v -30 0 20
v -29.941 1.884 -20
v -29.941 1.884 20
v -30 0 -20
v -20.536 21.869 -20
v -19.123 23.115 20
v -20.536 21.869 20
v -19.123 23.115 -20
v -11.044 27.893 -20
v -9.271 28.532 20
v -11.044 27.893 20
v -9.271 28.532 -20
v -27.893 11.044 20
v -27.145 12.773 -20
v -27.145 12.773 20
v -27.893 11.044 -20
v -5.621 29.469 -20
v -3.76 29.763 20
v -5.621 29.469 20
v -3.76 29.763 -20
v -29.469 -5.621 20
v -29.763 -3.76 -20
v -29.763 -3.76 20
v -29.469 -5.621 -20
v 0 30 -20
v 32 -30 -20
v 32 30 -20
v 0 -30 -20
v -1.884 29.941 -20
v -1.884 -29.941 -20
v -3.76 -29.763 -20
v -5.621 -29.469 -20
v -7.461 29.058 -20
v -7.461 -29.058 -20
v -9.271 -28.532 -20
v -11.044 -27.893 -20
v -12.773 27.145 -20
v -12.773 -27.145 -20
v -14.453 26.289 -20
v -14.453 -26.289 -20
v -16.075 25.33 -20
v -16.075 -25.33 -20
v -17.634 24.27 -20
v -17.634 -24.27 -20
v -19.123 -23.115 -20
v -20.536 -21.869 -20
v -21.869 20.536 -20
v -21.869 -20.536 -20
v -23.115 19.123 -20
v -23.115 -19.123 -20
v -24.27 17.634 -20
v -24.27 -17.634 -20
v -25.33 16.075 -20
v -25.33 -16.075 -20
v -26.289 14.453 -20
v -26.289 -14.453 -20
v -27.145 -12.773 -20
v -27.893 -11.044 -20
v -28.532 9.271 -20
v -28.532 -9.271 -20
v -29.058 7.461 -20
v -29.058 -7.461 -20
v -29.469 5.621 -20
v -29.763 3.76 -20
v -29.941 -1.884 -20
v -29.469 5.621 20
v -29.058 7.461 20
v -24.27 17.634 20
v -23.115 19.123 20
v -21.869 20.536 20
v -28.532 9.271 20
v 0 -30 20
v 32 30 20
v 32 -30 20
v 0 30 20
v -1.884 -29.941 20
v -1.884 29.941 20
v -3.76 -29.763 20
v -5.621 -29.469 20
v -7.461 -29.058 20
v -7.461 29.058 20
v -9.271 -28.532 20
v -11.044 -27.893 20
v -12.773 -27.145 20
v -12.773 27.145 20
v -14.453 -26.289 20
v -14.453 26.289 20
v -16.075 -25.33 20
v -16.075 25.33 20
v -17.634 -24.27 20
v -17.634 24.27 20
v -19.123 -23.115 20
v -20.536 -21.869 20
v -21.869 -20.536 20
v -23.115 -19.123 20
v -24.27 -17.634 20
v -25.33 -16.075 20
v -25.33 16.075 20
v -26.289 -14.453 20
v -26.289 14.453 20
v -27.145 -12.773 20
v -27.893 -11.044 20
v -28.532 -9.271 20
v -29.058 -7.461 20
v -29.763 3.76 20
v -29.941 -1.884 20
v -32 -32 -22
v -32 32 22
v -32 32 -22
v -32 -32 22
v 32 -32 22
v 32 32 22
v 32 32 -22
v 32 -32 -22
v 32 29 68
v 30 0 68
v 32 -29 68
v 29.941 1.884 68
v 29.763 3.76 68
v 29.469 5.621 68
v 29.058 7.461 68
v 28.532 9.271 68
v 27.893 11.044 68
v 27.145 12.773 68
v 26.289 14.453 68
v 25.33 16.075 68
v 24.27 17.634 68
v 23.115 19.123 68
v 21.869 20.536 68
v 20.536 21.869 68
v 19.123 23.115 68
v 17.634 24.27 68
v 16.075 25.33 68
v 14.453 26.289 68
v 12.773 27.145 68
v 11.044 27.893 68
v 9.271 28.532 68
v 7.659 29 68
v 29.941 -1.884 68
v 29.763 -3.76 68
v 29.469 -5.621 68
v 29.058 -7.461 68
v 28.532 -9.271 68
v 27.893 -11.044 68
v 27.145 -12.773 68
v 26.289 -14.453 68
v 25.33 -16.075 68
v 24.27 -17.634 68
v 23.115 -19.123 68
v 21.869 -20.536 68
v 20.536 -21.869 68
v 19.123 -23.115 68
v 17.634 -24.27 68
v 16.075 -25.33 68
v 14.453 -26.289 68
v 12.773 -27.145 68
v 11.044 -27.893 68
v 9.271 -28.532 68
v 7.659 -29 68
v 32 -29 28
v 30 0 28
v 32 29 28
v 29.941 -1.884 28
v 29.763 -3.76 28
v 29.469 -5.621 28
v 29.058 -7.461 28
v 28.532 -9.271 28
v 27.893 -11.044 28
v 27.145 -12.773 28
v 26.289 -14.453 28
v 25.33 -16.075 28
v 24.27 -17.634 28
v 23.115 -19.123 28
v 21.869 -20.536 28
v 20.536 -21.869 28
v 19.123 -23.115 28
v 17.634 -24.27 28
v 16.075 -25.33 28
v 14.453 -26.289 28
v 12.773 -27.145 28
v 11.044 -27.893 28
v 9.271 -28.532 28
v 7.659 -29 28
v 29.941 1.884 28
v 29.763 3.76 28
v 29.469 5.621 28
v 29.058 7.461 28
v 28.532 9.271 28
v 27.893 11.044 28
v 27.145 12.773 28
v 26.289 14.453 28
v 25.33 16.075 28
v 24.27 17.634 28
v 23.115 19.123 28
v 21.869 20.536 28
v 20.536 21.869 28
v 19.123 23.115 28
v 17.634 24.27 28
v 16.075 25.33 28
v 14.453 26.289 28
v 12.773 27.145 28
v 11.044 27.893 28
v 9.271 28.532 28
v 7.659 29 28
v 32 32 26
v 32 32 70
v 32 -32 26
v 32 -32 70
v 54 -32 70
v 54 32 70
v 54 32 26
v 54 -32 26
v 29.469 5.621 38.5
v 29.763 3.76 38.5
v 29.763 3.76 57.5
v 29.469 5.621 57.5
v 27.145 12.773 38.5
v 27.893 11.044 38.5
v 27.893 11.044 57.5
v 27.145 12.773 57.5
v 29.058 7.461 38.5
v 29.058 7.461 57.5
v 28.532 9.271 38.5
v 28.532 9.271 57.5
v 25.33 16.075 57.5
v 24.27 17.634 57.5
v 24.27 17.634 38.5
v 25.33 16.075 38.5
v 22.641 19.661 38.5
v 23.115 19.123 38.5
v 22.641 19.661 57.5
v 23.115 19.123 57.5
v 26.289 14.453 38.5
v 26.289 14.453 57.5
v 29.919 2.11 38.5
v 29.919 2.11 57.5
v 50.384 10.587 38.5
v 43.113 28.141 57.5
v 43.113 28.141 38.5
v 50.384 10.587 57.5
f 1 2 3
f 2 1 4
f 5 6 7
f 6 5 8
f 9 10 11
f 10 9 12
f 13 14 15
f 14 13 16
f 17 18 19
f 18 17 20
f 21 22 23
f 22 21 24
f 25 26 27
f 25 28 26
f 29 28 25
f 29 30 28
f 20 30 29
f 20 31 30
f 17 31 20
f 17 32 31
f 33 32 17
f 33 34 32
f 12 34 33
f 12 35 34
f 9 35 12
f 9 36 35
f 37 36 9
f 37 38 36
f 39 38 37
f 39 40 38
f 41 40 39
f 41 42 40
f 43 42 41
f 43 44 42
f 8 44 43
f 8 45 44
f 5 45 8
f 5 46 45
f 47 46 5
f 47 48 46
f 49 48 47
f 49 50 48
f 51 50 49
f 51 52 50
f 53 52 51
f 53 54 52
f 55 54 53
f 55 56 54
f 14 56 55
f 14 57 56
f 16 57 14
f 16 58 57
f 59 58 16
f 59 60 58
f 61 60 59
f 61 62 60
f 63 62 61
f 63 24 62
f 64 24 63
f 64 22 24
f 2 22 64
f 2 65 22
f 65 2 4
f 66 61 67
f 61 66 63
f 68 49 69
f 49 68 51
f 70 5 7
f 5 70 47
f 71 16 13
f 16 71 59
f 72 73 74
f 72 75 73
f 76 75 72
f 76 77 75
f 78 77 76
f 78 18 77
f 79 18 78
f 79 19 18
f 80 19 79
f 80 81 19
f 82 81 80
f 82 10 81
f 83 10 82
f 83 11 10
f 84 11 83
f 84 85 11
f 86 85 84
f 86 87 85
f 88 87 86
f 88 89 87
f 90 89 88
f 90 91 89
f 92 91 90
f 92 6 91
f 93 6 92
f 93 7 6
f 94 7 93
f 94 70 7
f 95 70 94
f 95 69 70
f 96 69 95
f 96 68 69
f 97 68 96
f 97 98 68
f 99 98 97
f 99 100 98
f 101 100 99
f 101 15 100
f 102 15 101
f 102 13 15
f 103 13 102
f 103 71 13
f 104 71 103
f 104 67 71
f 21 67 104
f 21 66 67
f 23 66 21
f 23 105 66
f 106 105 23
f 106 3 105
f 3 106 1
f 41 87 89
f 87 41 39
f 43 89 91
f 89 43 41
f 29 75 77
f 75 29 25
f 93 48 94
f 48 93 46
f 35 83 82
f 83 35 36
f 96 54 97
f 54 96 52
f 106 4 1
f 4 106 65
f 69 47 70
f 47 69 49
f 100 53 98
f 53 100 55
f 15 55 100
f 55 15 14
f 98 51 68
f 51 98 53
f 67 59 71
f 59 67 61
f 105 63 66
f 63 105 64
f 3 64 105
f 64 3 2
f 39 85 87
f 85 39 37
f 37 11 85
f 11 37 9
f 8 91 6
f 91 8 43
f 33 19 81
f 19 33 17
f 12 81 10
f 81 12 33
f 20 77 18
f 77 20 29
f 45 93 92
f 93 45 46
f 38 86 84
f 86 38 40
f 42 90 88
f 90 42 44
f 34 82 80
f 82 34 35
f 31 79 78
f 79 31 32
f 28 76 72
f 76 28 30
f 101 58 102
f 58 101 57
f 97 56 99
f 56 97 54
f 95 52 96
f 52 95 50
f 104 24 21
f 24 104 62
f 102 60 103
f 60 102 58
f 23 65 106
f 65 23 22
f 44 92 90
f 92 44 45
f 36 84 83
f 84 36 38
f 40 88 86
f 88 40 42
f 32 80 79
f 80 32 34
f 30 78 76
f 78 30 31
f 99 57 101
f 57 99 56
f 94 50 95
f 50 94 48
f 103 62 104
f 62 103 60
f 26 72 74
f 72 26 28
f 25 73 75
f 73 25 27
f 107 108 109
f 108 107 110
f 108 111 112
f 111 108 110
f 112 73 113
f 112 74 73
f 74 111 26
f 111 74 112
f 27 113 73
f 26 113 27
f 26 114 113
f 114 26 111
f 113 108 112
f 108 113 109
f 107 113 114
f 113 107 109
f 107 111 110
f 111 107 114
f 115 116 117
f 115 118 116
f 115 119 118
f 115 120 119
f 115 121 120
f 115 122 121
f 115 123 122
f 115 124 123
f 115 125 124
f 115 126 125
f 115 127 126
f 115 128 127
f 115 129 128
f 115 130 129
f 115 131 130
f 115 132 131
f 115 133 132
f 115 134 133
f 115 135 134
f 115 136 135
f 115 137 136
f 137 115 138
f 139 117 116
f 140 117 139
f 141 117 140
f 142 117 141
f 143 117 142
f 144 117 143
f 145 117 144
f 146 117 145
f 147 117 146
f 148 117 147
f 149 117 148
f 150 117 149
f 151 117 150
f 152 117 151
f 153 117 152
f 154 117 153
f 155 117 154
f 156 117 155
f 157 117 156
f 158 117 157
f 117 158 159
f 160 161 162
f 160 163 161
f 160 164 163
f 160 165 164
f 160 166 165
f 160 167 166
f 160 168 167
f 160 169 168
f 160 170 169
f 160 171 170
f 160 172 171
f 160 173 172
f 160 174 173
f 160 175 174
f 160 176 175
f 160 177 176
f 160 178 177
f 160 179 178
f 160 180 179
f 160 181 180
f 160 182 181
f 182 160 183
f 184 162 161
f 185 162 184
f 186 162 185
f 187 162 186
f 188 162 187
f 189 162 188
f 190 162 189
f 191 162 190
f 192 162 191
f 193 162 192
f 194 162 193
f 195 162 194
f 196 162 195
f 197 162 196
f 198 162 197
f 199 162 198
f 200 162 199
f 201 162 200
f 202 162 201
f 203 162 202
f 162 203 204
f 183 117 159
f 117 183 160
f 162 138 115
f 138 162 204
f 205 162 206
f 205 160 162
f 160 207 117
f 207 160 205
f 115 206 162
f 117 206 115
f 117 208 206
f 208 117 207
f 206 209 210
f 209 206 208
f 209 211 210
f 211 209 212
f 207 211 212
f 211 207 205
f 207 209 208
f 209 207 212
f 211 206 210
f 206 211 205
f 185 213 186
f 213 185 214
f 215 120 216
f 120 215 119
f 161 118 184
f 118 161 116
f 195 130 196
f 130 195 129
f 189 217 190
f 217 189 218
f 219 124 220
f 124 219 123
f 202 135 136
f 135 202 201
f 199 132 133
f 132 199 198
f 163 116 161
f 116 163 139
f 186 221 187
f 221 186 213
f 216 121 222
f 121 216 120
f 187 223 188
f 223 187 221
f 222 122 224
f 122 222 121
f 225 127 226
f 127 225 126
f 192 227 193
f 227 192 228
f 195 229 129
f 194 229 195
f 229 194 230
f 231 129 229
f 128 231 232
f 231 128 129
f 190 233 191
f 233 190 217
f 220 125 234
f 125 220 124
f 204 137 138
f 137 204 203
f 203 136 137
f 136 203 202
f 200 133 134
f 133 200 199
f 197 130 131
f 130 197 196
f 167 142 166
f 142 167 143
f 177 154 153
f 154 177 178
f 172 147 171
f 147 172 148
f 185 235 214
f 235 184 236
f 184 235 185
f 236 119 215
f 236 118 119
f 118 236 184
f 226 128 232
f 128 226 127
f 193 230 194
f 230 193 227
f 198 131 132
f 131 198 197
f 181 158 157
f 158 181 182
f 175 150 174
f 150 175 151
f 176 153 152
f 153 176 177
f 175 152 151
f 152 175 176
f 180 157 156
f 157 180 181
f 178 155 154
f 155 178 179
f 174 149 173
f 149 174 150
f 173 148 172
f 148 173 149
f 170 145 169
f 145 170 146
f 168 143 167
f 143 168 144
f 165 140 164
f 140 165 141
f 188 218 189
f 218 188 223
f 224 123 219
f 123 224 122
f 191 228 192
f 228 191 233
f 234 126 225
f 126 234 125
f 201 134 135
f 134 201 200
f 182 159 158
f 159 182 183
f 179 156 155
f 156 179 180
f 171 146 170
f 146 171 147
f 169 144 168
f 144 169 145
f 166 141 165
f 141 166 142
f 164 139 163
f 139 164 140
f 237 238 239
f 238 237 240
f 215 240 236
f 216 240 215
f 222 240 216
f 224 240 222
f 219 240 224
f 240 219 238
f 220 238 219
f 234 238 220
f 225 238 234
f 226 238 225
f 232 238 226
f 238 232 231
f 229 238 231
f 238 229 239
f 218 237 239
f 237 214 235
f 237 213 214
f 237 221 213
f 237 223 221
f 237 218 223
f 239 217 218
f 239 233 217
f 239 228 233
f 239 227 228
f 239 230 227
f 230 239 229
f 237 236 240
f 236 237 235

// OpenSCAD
$fn=100;
diameter = 60;
height= 40;
dice_lenght = 19;
wall_thickness=4;

// card holder
difference(){
    // box
    cube([diameter+wall_thickness,diameter+wall_thickness,height+wall_thickness],center=true);
    // hole
    union(){
        #cylinder(d=diameter, h=height, center=true);
        #translate([0.5*diameter,0,0]) cube([diameter,diameter,height],center=true);
    }
}
// cover
shrink=2;
translate([0,0,2*wall_thickness+height]) {
    difference(){
        // actual cover
        union(){
            // "stamp"
            translate([0.5*diameter,0,0]) cube([0.8*(diameter-shrink),diameter-shrink,height],center=true);
            // rim
            #translate([0.5*(diameter+wall_thickness),-0.5*(diameter+wall_thickness),-0.5*(height+wall_thickness)]) cube([0.5*(diameter)-2*wall_thickness,diameter+wall_thickness,height+wall_thickness]);    
            }
        // cards
        cylinder(d=diameter, h=height, center=true);
        // dice hole
        rotate([0,0,22.5]) translate([0.4*(diameter+dice_lenght),0,0]) cube([2*dice_lenght,dice_lenght,dice_lenght],center=true);
    }
}
